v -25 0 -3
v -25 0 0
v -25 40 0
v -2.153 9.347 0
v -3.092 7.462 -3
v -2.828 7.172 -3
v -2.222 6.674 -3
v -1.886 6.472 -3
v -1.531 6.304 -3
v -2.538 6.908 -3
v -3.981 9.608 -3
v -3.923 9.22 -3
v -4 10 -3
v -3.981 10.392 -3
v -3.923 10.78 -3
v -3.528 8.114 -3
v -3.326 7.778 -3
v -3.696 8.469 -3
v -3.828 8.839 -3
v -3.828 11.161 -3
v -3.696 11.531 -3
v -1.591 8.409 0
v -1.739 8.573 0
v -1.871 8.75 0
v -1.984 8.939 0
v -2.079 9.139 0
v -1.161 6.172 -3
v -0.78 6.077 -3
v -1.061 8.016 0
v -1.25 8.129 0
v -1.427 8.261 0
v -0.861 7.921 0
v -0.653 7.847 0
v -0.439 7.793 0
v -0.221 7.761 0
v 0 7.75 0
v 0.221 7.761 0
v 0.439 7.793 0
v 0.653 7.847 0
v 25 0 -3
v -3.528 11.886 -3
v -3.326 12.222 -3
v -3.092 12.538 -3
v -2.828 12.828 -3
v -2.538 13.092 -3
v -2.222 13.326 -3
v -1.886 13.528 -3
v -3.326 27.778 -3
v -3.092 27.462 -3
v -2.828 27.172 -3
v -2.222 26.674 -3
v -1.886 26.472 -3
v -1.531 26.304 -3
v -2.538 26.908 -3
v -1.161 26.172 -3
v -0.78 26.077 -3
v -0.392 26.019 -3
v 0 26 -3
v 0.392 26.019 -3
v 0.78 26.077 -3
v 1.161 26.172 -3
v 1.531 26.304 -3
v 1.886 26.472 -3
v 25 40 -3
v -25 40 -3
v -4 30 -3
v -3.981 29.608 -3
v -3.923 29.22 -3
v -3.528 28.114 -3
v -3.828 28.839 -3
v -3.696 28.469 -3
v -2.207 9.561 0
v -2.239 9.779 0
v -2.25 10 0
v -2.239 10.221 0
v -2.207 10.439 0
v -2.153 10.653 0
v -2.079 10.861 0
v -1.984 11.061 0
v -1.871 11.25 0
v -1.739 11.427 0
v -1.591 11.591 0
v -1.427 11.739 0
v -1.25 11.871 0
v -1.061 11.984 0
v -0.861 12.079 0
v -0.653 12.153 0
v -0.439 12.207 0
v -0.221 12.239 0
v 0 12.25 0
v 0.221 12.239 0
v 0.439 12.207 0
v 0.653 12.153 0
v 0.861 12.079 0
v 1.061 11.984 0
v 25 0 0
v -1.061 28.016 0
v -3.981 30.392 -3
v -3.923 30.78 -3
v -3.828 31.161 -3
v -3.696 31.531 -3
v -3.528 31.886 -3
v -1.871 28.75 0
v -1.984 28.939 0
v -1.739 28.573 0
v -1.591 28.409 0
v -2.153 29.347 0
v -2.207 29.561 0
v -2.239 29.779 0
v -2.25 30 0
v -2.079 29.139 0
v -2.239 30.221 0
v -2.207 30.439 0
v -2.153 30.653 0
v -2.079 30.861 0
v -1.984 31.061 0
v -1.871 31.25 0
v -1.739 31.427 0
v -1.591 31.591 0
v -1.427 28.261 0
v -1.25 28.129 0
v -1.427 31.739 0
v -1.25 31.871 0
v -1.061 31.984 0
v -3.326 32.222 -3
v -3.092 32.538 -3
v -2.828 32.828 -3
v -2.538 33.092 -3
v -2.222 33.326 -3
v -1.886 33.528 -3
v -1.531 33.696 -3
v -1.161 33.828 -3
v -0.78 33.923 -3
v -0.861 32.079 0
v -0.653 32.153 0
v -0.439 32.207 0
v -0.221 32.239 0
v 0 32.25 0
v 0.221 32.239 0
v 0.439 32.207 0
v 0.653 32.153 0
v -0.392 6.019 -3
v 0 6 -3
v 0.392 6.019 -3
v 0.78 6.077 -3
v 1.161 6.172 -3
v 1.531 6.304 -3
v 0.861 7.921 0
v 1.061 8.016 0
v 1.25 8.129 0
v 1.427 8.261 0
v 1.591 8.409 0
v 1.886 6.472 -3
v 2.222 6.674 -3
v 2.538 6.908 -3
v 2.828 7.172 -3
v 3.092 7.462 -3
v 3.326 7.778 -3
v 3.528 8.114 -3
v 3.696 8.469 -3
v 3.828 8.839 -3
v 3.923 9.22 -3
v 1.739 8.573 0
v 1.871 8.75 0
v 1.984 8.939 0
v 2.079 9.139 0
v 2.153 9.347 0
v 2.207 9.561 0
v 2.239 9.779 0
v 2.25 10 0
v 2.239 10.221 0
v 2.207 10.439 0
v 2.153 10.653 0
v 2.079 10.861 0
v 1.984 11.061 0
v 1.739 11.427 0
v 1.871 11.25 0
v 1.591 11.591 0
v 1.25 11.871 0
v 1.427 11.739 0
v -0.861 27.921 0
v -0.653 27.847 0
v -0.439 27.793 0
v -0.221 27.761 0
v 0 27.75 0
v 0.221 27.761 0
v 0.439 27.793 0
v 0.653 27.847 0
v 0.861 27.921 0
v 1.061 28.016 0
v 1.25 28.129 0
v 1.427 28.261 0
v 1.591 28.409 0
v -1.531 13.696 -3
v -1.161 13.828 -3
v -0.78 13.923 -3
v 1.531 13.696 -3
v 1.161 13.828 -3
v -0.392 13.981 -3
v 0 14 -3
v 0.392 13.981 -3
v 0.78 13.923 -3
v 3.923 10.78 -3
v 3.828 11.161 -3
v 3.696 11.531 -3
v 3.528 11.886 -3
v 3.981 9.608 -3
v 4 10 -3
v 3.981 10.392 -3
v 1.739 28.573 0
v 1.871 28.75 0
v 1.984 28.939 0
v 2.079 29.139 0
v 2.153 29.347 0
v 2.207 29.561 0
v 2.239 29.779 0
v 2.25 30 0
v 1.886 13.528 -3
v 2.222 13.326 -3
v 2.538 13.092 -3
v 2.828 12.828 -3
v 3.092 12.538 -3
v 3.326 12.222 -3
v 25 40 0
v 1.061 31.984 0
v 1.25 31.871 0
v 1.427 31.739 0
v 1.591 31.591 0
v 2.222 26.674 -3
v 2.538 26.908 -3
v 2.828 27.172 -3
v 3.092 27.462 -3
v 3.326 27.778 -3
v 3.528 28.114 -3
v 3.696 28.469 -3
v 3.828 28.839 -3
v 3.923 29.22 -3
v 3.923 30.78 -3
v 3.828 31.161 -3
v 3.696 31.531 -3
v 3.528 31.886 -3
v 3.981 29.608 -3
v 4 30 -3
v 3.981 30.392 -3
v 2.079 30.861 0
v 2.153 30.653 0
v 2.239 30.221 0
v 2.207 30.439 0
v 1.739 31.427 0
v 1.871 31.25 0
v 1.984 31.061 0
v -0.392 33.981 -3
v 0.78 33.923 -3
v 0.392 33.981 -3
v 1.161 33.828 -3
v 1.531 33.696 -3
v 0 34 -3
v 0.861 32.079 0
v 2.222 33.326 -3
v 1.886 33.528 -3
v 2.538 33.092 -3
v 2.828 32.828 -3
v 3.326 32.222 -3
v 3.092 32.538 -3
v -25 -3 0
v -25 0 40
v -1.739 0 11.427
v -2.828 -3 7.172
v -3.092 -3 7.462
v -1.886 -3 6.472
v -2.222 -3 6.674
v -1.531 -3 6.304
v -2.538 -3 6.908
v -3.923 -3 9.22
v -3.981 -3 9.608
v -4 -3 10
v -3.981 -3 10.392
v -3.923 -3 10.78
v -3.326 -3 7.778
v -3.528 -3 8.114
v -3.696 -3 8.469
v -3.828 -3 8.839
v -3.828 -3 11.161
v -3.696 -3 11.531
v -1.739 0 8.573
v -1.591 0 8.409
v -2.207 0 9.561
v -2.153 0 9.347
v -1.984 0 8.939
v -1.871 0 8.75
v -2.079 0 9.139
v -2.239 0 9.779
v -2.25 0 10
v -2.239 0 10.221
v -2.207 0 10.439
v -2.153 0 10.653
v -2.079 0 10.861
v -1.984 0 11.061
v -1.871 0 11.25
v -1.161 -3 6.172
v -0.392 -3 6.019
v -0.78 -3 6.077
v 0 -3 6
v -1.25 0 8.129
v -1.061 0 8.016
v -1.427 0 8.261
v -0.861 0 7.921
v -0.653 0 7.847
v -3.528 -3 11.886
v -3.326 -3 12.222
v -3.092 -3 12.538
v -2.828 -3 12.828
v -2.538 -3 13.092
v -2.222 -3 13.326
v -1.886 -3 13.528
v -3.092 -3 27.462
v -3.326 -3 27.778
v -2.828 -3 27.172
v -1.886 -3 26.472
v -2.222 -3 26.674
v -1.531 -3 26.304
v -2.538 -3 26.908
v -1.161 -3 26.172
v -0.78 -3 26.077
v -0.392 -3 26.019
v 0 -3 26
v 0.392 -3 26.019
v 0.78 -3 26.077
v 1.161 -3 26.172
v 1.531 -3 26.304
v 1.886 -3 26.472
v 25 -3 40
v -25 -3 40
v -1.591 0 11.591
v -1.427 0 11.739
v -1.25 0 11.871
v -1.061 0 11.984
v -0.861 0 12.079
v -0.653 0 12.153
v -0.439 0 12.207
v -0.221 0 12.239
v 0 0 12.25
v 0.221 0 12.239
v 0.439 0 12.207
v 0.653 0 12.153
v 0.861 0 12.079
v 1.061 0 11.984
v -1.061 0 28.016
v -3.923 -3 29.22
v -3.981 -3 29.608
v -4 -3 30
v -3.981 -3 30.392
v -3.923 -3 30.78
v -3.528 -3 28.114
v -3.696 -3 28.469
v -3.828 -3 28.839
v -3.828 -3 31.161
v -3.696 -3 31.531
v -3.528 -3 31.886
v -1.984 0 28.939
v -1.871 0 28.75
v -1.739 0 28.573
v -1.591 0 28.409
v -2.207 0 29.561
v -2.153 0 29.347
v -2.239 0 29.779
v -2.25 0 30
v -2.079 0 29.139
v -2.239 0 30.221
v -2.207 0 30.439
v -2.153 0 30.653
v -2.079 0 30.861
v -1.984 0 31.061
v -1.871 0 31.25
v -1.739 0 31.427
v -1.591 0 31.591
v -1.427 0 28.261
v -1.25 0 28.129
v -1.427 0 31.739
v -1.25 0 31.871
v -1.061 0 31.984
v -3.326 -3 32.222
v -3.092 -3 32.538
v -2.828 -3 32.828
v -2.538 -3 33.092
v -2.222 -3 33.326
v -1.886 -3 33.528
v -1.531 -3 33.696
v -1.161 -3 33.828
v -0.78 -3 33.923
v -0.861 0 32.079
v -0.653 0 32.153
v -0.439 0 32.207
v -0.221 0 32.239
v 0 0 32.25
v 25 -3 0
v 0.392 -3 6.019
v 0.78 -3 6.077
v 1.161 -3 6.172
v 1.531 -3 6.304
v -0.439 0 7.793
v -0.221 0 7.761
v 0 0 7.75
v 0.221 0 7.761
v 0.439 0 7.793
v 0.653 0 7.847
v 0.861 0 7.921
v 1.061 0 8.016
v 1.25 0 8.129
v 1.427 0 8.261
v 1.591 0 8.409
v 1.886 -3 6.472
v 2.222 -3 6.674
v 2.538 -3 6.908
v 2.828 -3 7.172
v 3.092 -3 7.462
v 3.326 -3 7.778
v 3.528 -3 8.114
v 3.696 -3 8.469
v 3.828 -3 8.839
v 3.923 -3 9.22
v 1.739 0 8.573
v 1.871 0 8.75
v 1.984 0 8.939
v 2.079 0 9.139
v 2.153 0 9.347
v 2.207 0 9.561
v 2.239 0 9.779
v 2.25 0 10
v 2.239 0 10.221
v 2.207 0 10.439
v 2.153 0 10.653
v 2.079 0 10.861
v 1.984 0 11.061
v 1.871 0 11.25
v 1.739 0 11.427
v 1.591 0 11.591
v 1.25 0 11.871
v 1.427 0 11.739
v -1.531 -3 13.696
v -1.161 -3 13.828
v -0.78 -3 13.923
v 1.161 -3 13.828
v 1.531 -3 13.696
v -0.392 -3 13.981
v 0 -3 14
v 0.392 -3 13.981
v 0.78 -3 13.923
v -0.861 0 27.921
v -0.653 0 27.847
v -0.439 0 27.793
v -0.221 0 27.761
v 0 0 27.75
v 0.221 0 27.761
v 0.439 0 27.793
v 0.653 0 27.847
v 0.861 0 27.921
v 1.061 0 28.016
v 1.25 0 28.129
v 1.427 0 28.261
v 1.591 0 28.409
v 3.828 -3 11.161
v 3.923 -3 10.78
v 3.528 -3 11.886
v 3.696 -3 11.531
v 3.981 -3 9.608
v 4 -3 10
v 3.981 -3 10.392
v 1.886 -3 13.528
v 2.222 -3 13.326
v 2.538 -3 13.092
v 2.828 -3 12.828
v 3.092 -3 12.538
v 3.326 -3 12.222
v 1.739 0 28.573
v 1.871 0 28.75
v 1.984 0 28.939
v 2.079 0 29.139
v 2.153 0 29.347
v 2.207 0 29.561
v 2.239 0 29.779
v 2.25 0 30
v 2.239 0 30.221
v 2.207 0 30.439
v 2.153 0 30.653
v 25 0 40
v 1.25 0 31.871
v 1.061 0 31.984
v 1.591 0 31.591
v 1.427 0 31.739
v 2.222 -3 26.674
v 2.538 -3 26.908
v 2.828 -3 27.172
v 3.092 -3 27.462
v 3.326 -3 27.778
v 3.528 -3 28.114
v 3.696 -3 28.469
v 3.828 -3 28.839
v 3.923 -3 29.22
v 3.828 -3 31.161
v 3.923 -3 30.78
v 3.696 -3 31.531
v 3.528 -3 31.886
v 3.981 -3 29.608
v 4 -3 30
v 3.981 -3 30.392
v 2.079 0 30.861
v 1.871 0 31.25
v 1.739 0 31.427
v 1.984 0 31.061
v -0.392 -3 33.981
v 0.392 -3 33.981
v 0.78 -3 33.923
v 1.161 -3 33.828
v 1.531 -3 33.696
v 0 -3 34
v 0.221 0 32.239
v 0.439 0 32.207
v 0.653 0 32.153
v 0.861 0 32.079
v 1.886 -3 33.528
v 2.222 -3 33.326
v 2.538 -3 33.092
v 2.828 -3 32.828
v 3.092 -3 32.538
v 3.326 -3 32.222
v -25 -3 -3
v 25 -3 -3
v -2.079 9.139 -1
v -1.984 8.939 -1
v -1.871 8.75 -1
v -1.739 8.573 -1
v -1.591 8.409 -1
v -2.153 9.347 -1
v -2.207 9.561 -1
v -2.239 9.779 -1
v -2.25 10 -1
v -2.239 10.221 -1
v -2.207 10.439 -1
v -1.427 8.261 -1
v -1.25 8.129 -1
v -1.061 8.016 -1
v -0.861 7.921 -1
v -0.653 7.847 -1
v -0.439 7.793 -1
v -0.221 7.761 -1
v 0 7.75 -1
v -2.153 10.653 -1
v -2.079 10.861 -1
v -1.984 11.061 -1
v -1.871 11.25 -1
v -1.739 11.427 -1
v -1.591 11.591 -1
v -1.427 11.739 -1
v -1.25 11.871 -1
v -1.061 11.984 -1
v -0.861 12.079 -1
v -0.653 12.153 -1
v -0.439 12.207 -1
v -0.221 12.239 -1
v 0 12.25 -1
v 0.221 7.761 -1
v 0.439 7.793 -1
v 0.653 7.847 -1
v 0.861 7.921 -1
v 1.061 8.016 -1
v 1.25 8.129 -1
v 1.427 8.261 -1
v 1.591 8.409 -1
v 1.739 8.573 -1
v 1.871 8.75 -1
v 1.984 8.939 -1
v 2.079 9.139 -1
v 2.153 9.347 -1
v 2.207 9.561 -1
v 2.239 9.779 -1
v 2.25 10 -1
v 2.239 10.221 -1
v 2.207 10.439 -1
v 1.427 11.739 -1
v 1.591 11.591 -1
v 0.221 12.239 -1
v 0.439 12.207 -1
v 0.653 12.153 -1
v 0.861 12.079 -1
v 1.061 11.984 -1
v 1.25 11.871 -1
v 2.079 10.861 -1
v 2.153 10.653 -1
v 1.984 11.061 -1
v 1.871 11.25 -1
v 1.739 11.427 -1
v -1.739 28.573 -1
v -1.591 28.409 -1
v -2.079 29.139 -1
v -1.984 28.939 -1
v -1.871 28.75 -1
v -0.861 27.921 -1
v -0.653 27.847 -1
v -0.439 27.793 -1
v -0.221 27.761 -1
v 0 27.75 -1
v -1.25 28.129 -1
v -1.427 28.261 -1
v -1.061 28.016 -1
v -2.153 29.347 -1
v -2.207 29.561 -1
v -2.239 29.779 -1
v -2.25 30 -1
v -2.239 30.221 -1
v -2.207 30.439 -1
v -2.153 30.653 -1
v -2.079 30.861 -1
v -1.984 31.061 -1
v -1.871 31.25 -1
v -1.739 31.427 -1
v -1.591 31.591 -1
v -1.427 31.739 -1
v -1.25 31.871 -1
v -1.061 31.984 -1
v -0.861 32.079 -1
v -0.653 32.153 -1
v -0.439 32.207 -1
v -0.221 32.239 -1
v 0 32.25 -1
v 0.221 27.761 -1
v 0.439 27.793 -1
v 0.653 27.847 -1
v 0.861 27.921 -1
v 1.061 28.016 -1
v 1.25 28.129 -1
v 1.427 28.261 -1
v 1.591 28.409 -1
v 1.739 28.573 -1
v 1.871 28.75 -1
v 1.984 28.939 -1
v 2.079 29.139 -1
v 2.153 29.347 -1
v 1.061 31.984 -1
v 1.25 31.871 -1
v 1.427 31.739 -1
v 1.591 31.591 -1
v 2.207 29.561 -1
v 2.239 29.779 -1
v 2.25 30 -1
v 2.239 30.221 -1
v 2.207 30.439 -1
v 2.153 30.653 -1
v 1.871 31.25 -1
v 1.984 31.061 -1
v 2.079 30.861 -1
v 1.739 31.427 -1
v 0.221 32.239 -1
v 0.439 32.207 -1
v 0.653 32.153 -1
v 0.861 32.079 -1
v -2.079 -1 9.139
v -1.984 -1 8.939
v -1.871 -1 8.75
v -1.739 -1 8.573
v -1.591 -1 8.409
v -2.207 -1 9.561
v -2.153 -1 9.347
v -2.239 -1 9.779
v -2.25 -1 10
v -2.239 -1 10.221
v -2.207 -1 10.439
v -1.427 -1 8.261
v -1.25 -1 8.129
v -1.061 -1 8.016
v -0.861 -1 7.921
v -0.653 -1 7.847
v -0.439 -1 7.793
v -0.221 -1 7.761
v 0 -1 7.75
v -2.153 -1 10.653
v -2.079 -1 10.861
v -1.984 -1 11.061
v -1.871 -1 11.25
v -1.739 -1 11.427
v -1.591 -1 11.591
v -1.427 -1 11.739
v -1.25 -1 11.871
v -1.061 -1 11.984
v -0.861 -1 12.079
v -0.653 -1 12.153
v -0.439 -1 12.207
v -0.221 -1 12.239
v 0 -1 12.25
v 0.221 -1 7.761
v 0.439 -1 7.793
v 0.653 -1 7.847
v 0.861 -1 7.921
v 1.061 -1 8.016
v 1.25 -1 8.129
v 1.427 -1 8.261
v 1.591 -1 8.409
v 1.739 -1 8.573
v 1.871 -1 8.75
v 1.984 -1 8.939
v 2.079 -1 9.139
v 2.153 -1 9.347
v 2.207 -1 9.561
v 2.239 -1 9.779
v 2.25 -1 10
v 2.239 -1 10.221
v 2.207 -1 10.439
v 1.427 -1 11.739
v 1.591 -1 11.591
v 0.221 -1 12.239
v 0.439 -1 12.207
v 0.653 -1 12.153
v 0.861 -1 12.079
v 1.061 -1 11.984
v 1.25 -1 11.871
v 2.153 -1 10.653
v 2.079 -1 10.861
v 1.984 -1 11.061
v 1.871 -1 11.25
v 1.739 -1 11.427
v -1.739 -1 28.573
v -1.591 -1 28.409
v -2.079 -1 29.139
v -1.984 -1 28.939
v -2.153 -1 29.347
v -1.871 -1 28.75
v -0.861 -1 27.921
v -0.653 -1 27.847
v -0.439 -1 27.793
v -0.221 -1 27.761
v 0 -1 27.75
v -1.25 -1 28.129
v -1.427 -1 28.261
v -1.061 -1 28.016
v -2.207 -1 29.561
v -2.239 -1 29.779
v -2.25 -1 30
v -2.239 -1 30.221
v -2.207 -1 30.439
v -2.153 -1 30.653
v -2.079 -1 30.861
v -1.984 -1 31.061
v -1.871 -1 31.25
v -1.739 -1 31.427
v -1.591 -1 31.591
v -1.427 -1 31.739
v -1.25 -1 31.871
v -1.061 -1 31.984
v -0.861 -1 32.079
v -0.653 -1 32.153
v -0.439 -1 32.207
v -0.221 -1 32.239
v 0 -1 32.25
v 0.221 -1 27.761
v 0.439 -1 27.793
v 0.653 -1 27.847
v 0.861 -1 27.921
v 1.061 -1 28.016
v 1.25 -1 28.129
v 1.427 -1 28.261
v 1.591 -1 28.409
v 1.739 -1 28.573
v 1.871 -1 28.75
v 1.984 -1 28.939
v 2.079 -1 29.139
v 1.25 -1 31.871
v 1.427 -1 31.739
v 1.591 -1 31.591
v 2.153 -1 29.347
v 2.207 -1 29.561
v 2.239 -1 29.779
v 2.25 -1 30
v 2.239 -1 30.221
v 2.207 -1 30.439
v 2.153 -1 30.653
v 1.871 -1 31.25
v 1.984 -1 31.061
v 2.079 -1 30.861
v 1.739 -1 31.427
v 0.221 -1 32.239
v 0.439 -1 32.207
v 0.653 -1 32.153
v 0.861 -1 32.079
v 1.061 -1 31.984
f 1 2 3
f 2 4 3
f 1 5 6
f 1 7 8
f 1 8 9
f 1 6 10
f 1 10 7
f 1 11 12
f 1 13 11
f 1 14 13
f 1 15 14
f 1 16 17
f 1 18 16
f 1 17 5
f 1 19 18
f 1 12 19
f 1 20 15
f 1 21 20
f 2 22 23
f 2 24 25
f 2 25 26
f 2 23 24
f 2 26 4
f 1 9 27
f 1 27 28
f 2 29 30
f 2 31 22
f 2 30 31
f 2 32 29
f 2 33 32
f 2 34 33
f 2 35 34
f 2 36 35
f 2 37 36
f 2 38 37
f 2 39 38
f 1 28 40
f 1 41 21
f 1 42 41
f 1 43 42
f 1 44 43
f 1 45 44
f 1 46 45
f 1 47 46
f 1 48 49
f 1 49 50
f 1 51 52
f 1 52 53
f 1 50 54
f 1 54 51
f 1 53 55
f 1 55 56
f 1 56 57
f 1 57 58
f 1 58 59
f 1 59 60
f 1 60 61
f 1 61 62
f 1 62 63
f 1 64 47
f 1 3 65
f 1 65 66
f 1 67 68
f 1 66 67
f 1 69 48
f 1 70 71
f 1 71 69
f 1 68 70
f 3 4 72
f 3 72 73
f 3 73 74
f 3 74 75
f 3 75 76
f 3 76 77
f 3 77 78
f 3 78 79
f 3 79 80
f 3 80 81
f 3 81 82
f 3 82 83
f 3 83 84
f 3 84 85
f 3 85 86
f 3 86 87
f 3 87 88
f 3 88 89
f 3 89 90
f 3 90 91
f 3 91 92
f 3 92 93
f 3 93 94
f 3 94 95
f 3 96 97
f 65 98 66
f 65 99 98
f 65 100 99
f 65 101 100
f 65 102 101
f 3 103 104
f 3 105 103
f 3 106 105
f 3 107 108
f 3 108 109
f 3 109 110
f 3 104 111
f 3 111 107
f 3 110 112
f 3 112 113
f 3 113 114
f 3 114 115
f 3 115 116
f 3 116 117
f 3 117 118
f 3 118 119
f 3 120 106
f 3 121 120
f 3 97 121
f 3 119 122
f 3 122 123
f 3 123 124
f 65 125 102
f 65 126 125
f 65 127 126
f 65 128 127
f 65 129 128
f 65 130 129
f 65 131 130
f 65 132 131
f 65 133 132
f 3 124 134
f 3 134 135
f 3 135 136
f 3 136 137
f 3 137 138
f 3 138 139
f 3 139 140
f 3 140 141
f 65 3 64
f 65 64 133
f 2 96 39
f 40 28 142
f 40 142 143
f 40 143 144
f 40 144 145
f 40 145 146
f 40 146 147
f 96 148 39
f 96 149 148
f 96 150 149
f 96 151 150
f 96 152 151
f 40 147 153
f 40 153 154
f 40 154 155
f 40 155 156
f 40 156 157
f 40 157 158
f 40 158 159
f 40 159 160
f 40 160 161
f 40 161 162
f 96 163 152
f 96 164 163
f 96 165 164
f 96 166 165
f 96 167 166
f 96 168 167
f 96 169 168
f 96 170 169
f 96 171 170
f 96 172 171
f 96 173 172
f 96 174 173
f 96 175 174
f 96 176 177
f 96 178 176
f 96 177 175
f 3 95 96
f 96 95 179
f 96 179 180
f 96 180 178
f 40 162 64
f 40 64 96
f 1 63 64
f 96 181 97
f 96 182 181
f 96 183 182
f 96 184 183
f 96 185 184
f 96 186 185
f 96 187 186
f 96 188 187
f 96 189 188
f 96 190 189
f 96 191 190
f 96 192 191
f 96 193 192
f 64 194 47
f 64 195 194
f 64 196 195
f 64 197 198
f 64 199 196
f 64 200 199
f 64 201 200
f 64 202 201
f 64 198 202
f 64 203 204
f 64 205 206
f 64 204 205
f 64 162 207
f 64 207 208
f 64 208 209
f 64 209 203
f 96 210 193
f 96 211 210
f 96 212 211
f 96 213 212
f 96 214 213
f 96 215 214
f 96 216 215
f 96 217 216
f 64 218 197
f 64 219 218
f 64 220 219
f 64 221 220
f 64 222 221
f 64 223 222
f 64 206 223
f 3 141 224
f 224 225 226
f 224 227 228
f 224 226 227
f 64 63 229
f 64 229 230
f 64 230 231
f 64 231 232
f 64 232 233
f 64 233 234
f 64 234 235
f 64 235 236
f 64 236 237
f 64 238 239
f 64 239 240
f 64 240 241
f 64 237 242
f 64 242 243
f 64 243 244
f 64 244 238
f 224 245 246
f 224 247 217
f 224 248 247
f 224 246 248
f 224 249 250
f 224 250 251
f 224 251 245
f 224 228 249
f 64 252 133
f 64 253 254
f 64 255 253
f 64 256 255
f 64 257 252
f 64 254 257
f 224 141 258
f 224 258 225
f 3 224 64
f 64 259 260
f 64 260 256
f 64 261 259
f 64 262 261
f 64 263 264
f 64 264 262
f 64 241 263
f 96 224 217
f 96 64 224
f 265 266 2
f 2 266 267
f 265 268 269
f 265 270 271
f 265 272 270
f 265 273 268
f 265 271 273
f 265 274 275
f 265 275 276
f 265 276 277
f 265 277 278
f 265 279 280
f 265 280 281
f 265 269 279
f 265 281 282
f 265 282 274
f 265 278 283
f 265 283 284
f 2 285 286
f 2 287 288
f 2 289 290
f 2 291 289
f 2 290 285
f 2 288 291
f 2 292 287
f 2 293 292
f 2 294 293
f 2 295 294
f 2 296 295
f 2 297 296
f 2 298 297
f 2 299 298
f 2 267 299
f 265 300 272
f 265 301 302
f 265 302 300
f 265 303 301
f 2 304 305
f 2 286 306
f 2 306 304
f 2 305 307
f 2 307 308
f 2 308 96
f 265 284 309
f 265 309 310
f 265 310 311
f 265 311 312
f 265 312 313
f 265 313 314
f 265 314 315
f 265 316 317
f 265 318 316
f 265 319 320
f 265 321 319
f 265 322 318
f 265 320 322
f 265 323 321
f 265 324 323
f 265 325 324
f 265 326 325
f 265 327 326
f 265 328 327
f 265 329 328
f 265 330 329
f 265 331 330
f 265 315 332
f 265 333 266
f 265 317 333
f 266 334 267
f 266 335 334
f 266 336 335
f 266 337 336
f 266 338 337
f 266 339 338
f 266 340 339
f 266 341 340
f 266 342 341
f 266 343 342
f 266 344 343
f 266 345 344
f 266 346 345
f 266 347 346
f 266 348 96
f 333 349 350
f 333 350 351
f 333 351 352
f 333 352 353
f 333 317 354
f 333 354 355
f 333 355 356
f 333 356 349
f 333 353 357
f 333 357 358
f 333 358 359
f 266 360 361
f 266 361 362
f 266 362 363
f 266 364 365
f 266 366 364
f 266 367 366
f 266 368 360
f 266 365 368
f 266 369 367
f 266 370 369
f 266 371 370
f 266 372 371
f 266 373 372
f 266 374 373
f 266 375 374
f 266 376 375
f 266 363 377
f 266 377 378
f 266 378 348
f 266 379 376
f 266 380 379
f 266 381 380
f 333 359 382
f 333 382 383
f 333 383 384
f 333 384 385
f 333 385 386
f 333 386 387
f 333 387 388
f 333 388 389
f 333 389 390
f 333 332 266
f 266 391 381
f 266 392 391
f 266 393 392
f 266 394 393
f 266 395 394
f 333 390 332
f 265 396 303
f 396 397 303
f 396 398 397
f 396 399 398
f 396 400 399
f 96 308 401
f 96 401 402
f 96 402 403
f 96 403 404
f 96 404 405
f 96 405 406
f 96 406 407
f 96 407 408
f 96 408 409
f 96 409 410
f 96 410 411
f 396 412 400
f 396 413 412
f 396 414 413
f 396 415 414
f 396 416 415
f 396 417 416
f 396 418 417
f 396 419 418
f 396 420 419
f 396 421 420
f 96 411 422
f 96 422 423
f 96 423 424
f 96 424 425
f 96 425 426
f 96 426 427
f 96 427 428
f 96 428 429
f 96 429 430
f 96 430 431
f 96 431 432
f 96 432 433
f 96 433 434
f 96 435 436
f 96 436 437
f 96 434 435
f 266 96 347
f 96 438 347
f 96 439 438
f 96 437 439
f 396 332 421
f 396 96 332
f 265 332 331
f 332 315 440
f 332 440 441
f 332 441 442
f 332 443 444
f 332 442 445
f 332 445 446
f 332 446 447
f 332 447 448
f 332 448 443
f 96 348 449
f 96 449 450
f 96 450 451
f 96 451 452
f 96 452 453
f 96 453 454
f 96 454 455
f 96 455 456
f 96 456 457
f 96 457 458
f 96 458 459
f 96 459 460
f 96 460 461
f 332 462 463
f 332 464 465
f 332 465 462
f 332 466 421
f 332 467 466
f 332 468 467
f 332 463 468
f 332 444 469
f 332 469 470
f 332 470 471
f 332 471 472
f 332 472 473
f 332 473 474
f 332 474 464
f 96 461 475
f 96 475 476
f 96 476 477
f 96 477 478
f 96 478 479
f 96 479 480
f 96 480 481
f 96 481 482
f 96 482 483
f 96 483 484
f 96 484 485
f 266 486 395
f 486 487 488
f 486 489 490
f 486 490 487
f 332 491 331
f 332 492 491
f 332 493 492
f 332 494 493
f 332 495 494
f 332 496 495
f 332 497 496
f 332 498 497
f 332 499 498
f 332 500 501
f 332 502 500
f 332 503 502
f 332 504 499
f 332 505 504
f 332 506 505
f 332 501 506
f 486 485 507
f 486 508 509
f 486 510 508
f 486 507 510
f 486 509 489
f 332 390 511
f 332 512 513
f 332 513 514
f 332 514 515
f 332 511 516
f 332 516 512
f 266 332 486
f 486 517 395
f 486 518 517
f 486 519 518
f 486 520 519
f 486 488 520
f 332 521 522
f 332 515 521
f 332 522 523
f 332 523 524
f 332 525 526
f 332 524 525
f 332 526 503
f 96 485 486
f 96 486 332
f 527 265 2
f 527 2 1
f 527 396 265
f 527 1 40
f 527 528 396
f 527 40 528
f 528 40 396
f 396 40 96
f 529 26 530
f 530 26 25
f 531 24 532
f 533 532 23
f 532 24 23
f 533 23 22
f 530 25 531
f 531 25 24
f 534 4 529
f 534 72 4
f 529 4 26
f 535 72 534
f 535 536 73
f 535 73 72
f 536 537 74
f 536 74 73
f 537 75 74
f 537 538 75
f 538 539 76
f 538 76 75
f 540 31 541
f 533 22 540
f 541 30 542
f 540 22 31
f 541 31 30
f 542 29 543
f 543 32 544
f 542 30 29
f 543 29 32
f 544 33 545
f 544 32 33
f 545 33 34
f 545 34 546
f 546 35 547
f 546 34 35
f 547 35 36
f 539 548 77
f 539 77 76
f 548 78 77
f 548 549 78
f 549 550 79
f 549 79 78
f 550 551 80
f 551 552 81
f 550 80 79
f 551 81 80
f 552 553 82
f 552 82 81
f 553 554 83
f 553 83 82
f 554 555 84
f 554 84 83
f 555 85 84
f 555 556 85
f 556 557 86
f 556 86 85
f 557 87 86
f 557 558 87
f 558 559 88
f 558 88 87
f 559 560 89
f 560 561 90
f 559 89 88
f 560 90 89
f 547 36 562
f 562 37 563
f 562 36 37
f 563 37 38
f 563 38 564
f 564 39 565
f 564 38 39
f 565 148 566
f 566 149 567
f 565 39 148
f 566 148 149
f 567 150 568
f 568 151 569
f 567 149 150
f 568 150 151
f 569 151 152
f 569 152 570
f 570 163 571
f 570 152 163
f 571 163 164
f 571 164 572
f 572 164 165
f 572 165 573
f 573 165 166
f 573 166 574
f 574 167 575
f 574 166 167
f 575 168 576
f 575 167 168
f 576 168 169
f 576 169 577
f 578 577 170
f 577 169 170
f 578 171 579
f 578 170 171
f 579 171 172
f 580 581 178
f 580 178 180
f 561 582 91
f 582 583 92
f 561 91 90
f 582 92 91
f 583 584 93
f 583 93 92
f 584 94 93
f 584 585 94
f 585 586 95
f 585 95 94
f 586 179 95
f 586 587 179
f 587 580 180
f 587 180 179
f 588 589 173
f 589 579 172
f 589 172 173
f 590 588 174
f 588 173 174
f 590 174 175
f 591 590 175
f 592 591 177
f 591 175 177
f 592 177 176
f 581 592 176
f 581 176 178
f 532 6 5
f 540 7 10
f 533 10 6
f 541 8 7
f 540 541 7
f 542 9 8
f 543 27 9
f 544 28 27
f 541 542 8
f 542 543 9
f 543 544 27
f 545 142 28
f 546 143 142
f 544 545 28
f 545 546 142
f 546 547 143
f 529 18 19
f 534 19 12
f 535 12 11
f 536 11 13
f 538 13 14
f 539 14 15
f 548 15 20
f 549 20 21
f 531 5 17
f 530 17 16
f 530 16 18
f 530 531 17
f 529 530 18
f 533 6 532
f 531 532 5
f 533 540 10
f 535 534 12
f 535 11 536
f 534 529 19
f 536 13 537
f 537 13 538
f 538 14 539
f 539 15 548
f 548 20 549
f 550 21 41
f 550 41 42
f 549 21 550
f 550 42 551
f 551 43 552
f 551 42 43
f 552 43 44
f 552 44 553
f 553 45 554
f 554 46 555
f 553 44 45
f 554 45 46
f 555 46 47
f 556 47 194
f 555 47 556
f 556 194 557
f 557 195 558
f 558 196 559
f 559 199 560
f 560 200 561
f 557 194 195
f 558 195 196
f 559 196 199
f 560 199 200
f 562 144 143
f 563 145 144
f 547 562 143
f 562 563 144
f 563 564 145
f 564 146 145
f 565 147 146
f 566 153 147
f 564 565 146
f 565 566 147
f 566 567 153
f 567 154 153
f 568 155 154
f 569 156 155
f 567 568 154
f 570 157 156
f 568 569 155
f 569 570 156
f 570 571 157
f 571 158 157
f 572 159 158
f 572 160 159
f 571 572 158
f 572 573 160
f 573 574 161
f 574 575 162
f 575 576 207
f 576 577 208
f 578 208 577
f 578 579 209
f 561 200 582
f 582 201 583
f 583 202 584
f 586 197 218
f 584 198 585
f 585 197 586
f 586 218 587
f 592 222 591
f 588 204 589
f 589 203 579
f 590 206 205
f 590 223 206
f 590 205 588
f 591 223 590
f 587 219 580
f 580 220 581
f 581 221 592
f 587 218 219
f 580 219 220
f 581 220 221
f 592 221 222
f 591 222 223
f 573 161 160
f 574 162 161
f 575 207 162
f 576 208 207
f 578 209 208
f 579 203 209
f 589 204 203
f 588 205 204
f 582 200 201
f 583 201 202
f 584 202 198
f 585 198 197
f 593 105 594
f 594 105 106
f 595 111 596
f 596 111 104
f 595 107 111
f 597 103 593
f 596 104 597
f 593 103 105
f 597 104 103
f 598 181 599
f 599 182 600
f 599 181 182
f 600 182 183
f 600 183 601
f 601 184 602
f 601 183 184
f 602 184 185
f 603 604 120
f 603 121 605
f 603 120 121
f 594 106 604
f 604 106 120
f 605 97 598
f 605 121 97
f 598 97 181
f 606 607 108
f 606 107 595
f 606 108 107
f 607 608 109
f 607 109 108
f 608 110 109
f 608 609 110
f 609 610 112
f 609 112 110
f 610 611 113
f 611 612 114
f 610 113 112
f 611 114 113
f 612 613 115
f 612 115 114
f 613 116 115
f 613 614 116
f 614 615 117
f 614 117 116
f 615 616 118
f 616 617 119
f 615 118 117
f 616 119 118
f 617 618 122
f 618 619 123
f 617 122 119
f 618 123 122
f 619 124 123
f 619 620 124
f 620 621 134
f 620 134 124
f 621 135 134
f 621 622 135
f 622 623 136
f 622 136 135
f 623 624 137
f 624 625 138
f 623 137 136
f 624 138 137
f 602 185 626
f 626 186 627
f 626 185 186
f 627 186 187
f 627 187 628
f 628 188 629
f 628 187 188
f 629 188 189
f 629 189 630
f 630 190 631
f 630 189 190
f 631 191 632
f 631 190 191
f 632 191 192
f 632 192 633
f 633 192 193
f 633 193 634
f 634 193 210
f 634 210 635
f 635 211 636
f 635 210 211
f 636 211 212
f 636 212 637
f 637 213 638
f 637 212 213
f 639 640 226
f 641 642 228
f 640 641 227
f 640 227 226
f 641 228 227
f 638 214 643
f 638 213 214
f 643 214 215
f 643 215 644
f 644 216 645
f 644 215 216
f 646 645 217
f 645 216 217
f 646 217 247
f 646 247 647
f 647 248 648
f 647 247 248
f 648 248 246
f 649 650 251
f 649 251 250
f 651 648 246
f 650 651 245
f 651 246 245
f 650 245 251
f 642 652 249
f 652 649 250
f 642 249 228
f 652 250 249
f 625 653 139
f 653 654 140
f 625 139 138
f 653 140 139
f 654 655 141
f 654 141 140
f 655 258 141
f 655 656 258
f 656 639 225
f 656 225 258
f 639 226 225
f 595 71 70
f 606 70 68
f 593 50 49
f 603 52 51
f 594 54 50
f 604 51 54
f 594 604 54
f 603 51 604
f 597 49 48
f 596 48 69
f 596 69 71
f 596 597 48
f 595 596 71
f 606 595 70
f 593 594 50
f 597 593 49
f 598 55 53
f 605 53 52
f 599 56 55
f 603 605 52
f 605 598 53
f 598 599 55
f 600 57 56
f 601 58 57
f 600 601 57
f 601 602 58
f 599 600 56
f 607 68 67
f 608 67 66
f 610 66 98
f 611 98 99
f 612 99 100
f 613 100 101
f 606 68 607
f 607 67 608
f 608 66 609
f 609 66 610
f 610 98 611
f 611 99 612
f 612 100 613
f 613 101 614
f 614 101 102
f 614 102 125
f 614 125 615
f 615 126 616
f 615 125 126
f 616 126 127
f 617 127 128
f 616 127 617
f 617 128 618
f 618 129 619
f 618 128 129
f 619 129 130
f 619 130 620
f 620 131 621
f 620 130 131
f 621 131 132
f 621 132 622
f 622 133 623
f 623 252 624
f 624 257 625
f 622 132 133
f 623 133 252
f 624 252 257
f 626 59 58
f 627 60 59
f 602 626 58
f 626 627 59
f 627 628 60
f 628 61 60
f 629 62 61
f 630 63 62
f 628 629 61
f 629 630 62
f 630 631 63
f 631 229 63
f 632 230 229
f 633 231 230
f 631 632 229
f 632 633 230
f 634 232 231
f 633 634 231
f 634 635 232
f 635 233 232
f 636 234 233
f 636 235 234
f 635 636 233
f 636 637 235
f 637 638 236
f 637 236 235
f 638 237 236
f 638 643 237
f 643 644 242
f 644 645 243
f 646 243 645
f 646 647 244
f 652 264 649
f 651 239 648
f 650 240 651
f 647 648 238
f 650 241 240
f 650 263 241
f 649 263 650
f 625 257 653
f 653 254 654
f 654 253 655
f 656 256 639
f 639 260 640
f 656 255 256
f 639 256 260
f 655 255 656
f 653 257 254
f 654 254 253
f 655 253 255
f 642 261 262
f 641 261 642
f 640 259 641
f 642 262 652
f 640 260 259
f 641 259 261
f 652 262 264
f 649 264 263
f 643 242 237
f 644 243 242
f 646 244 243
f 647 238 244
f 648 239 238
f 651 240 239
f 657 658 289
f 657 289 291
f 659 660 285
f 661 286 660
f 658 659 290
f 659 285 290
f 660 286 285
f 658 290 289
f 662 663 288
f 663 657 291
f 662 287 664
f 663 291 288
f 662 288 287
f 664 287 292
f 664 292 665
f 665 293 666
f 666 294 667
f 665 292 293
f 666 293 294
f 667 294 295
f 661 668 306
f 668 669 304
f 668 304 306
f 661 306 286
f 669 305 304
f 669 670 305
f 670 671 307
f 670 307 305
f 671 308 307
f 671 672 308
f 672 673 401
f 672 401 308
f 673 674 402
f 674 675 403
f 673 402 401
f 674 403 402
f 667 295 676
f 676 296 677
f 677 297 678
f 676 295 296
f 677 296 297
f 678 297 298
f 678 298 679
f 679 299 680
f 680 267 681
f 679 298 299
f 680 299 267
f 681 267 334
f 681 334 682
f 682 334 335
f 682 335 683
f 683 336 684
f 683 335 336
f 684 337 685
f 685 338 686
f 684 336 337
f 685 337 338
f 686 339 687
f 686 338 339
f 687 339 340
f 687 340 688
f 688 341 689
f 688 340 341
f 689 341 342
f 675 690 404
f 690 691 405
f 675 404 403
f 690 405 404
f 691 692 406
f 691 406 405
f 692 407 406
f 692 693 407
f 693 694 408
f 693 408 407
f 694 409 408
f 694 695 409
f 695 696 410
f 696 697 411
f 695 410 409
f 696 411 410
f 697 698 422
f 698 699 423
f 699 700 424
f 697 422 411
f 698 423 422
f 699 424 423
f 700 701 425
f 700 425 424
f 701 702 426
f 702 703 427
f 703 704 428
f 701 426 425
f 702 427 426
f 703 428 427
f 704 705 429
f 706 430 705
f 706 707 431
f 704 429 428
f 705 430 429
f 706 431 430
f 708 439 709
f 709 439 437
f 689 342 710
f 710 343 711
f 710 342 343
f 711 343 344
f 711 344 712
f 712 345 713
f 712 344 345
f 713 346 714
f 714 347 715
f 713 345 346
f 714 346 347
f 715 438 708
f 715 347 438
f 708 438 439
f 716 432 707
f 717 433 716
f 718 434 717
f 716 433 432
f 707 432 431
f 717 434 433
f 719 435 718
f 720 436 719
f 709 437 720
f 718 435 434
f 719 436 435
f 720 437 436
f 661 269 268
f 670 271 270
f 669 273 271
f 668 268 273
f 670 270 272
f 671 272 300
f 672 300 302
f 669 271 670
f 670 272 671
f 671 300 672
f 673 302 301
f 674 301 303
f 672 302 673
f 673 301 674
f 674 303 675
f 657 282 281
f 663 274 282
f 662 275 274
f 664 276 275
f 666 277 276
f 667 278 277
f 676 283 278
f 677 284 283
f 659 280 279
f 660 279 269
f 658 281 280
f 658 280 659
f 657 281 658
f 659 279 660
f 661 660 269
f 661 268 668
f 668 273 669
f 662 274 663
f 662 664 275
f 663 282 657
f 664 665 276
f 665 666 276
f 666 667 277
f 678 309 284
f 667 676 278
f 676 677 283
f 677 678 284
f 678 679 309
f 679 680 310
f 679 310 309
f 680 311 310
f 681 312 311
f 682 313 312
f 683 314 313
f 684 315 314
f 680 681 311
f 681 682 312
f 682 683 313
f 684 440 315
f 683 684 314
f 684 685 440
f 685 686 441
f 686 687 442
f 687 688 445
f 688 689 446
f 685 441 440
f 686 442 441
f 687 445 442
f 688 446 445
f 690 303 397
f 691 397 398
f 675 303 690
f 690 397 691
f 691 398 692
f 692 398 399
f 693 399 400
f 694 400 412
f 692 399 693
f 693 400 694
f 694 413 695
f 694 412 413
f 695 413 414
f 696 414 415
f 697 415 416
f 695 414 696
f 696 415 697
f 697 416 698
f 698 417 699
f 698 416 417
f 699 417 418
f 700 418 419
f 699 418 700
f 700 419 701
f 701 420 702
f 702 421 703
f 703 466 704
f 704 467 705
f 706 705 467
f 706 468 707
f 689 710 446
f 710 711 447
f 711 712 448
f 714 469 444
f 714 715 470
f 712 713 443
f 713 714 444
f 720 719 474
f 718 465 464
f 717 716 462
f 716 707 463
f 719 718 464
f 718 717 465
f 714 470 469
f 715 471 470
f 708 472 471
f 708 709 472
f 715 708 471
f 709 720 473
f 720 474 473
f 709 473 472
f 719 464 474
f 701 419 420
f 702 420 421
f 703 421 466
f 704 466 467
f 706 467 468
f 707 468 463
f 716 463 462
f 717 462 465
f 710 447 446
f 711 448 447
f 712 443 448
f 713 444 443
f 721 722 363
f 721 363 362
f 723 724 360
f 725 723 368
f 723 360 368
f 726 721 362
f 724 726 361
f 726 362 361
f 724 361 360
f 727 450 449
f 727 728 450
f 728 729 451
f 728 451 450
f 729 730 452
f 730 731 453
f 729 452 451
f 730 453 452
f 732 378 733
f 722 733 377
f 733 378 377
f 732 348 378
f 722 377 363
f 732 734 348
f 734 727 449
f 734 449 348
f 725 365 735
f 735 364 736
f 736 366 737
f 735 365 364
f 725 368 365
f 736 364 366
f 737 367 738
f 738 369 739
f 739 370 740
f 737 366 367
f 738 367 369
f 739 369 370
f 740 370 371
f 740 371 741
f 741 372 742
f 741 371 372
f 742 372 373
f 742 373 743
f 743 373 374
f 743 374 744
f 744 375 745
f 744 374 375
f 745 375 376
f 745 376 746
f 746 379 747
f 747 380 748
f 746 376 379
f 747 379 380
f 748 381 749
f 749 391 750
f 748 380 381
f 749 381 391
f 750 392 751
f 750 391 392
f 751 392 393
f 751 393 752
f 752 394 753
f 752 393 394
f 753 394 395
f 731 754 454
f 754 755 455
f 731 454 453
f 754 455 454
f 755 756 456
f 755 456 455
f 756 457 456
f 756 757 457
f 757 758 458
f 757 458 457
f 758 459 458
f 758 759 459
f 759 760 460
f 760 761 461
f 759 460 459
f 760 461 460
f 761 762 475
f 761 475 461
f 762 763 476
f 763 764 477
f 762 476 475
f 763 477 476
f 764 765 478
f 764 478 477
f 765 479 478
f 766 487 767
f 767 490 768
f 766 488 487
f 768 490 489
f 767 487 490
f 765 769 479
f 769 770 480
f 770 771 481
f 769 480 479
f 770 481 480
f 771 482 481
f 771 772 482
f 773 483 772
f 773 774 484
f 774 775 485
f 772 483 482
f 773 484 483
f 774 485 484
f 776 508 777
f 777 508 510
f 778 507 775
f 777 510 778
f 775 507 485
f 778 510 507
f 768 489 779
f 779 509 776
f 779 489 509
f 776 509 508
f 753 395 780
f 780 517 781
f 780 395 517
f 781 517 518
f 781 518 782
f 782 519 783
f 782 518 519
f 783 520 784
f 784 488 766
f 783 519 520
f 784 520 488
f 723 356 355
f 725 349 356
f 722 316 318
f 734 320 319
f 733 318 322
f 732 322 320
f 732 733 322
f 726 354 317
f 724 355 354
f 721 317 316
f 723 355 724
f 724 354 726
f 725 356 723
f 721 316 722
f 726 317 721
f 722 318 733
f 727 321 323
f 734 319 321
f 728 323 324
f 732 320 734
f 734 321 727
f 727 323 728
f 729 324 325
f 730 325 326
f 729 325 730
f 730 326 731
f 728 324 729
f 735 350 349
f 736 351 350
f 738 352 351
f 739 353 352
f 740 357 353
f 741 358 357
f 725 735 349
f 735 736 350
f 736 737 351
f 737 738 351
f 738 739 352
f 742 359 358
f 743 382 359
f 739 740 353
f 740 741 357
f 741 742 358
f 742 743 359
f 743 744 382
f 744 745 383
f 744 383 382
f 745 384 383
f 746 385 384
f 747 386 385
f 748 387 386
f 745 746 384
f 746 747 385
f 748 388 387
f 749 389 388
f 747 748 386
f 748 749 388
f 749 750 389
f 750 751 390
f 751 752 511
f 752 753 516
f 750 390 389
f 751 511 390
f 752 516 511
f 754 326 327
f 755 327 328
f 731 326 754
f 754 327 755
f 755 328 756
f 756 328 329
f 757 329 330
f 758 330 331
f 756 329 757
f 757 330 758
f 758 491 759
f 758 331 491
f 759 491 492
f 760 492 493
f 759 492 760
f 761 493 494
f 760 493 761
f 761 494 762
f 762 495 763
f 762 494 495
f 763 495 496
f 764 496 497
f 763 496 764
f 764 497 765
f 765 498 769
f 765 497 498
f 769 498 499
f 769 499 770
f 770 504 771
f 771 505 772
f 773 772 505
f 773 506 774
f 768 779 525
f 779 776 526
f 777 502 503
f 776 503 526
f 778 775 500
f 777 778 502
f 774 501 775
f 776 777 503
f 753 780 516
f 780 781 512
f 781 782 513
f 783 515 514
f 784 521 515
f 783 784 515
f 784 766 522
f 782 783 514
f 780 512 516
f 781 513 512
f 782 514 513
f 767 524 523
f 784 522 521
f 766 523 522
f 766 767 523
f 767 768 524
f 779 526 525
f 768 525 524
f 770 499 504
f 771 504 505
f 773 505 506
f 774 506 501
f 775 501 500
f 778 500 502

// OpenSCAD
$fn = 64;

width = 50;
depth = 40;
height = 40;
thickness = 3;

through_diameter = 4.5;
countersink_diameter = 8;
countersink_depth = 2;

module horizontal_hole(y) {
    // Through-hole
    translate([0, y, -thickness])
        cylinder(d = through_diameter, h = thickness);

    // Countersink on the outside face (z = -thickness)
    translate([0, y, -thickness])
        cylinder(
            h = countersink_depth,
            d1 = countersink_diameter,
            d2 = through_diameter
        );
}

module vertical_hole(z) {
    // Through-hole, along the Y axis
    translate([0, -thickness, z])
        rotate([-90, 0, 0])
            cylinder(d = through_diameter, h = thickness);

    // Countersink on the outside face (y = -thickness)
    translate([0, -thickness, z])
        rotate([-90, 0, 0])
            cylinder(
                h = countersink_depth,
                d1 = countersink_diameter,
                d2 = through_diameter
            );
}

difference() {
    union() {
        // Horizontal flange: extends in +Y
        translate([-width / 2, 0, -thickness])
            cube([width, depth, thickness]);

        // Vertical flange: extends in +Z
        translate([-width / 2, -thickness, 0])
            cube([width, thickness, height]);

        // Corner connector
        translate([-width / 2, -thickness, -thickness])
            cube([width, thickness, thickness]);
    }

    // Horizontal flange holes, 10 mm from each end
    horizontal_hole(10);
    horizontal_hole(depth - 10);

    // Vertical flange holes, 10 mm from each end
    vertical_hole(10);
    vertical_hole(height - 10);
}
